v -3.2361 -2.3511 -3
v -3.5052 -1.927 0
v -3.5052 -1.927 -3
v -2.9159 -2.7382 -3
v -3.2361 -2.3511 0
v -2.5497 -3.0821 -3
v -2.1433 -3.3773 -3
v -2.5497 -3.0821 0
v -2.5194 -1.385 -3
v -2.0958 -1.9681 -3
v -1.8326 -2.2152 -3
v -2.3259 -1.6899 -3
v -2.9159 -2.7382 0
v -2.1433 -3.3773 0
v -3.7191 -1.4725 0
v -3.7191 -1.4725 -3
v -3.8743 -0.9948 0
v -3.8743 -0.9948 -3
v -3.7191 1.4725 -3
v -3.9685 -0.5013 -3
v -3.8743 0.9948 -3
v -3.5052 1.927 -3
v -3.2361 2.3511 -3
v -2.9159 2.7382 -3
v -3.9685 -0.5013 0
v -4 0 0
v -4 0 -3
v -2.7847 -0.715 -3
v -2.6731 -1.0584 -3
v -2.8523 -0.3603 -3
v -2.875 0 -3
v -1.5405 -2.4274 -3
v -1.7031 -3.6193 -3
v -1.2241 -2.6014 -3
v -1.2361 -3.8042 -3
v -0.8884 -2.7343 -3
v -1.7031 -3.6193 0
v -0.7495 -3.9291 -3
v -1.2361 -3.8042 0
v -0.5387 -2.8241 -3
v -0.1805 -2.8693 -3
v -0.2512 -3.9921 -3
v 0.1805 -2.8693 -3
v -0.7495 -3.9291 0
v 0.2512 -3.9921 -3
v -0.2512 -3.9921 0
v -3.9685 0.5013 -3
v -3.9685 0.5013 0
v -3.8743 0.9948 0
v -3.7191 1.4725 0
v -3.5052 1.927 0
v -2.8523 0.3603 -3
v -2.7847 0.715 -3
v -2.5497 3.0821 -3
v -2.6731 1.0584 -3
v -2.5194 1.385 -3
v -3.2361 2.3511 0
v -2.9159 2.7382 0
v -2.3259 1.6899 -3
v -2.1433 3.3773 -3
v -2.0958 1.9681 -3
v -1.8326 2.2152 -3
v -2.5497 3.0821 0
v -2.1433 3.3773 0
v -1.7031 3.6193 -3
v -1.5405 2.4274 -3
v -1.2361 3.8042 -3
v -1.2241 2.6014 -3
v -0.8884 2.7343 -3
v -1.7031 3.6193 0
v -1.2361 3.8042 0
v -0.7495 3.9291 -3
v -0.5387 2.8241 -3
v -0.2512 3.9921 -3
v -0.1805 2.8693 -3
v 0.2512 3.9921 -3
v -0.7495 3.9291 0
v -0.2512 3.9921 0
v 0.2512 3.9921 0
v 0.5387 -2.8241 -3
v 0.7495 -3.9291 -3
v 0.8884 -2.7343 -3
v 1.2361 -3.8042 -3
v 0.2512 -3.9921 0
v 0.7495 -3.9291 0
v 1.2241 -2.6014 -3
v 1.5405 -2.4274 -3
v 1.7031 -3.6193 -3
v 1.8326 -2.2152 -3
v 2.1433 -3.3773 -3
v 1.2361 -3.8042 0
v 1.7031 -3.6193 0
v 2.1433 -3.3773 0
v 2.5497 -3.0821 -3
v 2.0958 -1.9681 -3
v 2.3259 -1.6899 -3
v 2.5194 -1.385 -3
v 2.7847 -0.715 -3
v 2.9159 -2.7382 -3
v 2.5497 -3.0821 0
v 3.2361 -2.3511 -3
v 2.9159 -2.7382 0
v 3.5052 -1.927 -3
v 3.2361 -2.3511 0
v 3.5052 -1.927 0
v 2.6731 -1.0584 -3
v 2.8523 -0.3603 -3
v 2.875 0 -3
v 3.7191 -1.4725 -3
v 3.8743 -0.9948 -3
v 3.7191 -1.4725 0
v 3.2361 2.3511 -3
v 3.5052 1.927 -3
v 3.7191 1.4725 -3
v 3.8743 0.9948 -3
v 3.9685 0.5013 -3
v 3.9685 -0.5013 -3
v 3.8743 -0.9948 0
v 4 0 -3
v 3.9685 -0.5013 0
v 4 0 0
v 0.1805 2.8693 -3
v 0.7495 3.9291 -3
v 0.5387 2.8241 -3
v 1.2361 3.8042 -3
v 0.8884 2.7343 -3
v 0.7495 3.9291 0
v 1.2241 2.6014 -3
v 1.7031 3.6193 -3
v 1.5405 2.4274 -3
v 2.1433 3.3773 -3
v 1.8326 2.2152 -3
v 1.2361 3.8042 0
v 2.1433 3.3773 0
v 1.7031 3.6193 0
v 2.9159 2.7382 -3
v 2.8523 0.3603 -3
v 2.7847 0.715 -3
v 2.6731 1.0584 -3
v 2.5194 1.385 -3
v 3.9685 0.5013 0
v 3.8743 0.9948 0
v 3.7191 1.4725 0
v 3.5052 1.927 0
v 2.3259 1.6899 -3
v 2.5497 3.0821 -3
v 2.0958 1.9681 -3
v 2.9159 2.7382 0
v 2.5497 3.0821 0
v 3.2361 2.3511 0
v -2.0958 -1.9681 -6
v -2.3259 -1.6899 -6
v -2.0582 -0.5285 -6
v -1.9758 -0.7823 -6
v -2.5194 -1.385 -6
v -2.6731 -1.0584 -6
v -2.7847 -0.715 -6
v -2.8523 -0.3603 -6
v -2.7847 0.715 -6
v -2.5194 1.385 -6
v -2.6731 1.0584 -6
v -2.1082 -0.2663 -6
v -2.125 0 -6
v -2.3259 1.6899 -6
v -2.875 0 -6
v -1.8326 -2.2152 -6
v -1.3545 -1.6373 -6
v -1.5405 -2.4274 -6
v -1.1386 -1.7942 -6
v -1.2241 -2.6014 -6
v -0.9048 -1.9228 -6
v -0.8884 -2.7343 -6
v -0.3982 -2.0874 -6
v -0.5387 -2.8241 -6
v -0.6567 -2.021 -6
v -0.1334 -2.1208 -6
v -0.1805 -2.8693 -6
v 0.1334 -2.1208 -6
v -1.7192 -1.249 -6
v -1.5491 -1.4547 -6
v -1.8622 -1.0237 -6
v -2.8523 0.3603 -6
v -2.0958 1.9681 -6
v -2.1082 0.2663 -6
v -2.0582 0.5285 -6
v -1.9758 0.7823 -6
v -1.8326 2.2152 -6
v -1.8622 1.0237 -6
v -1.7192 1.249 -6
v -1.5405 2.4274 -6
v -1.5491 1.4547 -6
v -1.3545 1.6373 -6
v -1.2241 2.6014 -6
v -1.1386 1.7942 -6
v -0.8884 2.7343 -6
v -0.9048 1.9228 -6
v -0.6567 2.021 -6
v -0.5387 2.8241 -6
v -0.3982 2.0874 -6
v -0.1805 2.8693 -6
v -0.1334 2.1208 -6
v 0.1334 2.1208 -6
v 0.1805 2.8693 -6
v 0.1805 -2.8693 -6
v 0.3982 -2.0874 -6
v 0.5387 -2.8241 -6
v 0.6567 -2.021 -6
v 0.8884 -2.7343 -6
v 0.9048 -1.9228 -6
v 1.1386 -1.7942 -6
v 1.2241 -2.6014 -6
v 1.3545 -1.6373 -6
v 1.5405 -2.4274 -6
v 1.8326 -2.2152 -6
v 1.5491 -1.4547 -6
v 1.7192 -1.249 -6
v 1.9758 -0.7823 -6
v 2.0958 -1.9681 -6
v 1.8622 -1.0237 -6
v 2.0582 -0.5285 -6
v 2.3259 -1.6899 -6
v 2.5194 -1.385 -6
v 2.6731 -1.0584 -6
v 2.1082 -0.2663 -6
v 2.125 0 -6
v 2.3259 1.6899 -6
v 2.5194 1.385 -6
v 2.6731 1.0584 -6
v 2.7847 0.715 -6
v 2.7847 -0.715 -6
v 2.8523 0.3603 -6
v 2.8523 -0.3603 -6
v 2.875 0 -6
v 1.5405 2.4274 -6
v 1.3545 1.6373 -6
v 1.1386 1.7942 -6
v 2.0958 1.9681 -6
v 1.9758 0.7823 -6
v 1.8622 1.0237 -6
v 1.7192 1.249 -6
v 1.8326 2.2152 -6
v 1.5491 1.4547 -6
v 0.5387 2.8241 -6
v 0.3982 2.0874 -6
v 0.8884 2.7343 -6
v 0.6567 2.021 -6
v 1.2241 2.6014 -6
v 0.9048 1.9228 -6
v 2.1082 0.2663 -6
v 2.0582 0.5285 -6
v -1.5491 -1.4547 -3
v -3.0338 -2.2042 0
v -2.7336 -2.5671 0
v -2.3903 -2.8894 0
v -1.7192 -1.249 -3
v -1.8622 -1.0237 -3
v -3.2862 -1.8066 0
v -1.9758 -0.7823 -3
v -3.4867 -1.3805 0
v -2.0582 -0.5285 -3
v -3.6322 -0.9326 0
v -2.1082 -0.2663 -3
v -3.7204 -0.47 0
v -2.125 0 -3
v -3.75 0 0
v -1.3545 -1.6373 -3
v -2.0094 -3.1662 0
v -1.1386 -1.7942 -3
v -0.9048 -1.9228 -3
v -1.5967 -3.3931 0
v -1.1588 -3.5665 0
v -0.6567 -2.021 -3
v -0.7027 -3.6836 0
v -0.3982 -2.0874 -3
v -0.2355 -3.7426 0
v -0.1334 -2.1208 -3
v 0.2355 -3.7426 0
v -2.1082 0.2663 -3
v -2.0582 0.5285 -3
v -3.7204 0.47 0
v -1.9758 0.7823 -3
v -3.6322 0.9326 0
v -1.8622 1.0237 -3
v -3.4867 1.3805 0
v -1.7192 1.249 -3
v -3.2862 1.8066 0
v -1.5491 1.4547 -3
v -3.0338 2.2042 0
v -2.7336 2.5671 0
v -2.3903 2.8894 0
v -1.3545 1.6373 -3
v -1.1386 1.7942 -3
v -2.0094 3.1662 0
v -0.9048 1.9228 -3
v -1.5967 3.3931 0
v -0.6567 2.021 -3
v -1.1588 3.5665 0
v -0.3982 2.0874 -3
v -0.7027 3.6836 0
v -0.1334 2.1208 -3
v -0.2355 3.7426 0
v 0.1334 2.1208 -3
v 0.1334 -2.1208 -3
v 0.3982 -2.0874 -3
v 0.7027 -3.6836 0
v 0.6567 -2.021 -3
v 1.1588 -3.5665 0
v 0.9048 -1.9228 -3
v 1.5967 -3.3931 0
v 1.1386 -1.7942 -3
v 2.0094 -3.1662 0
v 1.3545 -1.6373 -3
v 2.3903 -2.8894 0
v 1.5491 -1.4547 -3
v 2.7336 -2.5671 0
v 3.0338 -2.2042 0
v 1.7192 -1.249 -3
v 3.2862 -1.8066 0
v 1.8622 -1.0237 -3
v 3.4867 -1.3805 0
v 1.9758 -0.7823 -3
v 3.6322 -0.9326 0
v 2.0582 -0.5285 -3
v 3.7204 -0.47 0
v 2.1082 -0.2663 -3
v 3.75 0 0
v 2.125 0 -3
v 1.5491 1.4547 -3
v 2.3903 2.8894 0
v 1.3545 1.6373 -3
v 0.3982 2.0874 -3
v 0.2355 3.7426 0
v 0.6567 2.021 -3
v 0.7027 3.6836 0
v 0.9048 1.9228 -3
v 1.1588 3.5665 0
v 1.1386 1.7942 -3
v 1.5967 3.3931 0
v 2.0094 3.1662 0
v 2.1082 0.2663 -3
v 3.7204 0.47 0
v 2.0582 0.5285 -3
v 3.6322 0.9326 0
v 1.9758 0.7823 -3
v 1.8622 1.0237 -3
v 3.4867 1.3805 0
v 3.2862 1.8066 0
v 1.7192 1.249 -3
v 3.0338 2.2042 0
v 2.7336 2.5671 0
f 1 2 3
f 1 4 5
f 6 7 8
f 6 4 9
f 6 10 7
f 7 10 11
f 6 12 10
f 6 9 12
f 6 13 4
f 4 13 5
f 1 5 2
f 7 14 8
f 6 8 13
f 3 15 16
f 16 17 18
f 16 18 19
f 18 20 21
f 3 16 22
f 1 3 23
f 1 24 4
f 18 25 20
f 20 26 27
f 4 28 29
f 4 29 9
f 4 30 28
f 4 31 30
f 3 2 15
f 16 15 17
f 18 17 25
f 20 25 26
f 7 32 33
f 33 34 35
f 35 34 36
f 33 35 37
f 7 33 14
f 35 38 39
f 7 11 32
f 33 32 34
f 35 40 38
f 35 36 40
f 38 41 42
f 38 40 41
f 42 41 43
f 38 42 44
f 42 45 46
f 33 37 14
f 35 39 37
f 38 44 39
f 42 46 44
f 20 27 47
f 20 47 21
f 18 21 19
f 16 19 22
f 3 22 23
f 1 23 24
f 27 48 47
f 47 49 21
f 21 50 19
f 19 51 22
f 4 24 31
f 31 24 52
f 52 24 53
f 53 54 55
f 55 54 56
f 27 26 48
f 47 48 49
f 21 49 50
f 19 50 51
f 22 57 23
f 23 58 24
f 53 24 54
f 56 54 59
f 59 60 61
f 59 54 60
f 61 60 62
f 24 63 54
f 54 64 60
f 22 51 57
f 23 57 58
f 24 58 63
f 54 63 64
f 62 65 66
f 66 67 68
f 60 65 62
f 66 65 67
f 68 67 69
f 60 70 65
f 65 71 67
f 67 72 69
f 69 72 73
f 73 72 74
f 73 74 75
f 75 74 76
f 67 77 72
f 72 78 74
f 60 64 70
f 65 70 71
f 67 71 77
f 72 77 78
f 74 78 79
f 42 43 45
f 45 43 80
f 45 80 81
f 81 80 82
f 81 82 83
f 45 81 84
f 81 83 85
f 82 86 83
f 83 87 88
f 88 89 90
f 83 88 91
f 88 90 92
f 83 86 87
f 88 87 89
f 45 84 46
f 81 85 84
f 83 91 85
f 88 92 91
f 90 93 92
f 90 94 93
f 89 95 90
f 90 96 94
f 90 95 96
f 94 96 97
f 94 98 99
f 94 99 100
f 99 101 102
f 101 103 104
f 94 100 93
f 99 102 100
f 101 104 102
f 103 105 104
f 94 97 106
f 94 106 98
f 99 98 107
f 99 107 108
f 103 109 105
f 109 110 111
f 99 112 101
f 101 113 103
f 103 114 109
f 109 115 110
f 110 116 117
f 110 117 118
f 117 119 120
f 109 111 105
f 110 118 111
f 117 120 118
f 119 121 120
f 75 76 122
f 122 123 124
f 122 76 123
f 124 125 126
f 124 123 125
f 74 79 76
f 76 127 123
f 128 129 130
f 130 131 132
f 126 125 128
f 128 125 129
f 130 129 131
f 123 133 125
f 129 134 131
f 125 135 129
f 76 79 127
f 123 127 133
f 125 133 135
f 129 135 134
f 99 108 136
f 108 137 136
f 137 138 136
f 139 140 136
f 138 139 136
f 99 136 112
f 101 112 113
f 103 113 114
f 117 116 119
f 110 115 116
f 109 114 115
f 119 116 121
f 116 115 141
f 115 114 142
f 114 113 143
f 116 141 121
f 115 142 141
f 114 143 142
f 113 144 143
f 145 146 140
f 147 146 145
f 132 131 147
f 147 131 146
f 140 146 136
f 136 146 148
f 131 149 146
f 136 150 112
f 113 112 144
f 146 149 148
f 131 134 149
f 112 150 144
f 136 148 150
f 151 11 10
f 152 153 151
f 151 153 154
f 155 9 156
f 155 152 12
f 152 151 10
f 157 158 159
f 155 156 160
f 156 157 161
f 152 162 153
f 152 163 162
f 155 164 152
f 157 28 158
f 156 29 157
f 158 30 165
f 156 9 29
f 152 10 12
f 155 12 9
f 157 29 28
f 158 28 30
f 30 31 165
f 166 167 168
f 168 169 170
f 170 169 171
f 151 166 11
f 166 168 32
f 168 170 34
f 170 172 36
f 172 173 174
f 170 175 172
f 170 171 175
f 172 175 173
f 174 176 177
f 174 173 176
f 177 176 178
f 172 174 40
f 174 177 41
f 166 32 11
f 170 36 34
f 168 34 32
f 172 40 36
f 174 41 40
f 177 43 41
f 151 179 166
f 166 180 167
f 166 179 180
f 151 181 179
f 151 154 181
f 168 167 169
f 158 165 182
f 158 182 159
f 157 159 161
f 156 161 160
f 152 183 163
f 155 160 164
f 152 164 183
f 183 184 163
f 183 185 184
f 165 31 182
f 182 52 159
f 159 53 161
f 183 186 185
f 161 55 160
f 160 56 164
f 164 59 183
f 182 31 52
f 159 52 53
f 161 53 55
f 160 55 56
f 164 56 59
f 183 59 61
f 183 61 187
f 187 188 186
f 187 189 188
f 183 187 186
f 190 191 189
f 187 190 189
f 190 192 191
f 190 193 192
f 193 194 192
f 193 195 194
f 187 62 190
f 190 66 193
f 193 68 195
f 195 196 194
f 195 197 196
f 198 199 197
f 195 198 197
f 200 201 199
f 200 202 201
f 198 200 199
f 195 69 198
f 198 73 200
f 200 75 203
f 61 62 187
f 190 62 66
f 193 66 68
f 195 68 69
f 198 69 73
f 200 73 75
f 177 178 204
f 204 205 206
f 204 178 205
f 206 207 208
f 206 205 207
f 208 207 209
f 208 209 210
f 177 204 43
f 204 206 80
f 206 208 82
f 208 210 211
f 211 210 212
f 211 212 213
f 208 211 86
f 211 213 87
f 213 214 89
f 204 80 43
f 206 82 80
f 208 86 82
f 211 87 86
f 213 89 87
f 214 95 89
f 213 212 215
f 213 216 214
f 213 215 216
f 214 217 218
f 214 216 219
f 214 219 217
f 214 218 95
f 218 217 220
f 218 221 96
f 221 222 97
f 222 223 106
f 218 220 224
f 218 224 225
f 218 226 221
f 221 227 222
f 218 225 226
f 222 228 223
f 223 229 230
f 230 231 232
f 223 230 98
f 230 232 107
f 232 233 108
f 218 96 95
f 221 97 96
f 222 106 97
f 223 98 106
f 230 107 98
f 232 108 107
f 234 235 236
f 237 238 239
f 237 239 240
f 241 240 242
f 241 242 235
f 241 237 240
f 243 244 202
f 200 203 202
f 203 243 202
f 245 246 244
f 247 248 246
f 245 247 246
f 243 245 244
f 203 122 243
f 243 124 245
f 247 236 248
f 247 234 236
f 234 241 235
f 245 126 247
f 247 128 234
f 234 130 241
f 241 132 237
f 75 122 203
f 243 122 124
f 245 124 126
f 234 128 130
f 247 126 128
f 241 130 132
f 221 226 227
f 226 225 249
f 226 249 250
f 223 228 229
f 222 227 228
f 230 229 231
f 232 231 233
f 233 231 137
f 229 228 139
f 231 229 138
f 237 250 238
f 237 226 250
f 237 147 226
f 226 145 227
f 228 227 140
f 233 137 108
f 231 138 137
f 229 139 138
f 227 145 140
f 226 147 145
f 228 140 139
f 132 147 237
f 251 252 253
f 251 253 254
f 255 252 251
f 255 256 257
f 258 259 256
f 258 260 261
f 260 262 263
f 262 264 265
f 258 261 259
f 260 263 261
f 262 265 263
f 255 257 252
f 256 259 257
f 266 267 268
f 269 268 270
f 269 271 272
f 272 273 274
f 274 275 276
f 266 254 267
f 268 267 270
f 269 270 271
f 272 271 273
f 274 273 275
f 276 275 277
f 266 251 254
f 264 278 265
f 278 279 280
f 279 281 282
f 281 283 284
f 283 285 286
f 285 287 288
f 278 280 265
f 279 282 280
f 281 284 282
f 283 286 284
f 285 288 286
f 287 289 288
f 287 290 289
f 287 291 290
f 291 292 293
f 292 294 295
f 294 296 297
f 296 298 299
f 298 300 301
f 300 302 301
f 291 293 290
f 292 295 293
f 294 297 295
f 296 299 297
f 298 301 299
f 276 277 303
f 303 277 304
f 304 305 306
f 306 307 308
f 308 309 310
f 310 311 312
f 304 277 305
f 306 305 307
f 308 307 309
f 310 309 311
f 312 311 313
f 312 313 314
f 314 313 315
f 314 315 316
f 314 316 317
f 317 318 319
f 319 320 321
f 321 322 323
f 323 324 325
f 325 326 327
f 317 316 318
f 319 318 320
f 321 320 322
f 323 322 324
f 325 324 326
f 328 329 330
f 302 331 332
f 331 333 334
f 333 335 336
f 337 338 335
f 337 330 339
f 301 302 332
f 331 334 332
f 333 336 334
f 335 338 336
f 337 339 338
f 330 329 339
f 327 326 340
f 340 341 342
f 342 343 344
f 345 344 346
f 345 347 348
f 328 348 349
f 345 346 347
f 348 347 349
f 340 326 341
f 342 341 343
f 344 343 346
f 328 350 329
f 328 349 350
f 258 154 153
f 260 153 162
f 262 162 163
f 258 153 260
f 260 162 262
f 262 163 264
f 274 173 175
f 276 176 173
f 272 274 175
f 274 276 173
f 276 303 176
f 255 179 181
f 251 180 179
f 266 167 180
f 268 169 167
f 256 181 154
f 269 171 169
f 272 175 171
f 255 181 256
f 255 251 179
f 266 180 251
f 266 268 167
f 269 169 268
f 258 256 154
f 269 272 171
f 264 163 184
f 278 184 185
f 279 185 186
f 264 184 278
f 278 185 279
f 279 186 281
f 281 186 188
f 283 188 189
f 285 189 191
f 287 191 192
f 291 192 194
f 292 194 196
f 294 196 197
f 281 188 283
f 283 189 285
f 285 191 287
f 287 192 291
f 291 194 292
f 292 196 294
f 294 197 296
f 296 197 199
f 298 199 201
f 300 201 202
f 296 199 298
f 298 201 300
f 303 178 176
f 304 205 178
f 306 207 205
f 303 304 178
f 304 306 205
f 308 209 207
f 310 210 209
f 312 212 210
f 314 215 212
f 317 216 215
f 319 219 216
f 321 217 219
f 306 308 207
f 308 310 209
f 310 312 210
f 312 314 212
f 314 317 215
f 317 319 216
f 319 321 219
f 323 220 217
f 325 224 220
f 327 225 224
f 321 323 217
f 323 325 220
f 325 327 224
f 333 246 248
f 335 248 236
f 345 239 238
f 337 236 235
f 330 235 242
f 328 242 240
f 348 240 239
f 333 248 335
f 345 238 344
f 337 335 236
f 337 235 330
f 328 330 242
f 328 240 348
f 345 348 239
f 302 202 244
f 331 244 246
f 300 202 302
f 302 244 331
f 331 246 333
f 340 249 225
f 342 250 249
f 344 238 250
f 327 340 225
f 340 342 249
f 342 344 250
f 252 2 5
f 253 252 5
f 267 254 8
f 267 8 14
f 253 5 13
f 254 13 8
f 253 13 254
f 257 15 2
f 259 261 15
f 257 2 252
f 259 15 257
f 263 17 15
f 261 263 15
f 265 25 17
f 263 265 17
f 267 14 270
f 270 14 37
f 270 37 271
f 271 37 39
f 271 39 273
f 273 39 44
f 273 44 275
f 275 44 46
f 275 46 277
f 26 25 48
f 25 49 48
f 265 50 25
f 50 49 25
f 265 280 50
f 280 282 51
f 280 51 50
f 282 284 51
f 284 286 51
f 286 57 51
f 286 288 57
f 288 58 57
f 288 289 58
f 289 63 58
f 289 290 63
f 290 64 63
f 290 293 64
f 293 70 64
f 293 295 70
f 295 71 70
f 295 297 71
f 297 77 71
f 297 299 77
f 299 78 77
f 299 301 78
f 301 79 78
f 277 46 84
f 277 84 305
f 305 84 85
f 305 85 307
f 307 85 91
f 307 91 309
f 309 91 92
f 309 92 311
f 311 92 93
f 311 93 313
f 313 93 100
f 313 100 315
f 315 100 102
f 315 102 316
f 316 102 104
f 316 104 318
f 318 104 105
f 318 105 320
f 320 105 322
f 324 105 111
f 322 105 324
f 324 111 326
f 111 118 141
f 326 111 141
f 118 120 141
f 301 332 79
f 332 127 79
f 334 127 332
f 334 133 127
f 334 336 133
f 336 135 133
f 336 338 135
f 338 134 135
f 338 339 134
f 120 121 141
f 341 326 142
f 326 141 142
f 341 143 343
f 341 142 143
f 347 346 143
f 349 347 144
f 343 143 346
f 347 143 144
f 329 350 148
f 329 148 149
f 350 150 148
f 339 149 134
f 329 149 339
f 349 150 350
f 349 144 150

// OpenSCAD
$fn = 50;

difference() {
	union() {
		translate(v = [0, 0, -3.0]) {
			cylinder(h = 6, r = 4.0);
		}
		#translate(v = [0, 0, -6.0]) {
			cylinder(h = 6, r = 2.875);
		}
	}
	union() {
		translate(v = [0, 0, 0]) {
			rotate(a = [0, 0, 0]) {
				difference() {
					union() {
						translate(v = [0, 0, -6.0]) {
							cylinder(h = 6, r = 2.0);
						}
						translate(v = [0, 0, -3]) {
							cylinder(h = 3, r1 = 2.125, r2 = 3.75);
						}
						translate(v = [0, 0, -6.0]) {
							cylinder(h = 6, r = 2.125);
						}
						translate(v = [0, 0, -6.0]) {
							cylinder(h = 6, r = 2.0);
						}
					}
					union();
				}
			}
		}
		#cylinder(h = 3, r = 5.0);
	}
}
